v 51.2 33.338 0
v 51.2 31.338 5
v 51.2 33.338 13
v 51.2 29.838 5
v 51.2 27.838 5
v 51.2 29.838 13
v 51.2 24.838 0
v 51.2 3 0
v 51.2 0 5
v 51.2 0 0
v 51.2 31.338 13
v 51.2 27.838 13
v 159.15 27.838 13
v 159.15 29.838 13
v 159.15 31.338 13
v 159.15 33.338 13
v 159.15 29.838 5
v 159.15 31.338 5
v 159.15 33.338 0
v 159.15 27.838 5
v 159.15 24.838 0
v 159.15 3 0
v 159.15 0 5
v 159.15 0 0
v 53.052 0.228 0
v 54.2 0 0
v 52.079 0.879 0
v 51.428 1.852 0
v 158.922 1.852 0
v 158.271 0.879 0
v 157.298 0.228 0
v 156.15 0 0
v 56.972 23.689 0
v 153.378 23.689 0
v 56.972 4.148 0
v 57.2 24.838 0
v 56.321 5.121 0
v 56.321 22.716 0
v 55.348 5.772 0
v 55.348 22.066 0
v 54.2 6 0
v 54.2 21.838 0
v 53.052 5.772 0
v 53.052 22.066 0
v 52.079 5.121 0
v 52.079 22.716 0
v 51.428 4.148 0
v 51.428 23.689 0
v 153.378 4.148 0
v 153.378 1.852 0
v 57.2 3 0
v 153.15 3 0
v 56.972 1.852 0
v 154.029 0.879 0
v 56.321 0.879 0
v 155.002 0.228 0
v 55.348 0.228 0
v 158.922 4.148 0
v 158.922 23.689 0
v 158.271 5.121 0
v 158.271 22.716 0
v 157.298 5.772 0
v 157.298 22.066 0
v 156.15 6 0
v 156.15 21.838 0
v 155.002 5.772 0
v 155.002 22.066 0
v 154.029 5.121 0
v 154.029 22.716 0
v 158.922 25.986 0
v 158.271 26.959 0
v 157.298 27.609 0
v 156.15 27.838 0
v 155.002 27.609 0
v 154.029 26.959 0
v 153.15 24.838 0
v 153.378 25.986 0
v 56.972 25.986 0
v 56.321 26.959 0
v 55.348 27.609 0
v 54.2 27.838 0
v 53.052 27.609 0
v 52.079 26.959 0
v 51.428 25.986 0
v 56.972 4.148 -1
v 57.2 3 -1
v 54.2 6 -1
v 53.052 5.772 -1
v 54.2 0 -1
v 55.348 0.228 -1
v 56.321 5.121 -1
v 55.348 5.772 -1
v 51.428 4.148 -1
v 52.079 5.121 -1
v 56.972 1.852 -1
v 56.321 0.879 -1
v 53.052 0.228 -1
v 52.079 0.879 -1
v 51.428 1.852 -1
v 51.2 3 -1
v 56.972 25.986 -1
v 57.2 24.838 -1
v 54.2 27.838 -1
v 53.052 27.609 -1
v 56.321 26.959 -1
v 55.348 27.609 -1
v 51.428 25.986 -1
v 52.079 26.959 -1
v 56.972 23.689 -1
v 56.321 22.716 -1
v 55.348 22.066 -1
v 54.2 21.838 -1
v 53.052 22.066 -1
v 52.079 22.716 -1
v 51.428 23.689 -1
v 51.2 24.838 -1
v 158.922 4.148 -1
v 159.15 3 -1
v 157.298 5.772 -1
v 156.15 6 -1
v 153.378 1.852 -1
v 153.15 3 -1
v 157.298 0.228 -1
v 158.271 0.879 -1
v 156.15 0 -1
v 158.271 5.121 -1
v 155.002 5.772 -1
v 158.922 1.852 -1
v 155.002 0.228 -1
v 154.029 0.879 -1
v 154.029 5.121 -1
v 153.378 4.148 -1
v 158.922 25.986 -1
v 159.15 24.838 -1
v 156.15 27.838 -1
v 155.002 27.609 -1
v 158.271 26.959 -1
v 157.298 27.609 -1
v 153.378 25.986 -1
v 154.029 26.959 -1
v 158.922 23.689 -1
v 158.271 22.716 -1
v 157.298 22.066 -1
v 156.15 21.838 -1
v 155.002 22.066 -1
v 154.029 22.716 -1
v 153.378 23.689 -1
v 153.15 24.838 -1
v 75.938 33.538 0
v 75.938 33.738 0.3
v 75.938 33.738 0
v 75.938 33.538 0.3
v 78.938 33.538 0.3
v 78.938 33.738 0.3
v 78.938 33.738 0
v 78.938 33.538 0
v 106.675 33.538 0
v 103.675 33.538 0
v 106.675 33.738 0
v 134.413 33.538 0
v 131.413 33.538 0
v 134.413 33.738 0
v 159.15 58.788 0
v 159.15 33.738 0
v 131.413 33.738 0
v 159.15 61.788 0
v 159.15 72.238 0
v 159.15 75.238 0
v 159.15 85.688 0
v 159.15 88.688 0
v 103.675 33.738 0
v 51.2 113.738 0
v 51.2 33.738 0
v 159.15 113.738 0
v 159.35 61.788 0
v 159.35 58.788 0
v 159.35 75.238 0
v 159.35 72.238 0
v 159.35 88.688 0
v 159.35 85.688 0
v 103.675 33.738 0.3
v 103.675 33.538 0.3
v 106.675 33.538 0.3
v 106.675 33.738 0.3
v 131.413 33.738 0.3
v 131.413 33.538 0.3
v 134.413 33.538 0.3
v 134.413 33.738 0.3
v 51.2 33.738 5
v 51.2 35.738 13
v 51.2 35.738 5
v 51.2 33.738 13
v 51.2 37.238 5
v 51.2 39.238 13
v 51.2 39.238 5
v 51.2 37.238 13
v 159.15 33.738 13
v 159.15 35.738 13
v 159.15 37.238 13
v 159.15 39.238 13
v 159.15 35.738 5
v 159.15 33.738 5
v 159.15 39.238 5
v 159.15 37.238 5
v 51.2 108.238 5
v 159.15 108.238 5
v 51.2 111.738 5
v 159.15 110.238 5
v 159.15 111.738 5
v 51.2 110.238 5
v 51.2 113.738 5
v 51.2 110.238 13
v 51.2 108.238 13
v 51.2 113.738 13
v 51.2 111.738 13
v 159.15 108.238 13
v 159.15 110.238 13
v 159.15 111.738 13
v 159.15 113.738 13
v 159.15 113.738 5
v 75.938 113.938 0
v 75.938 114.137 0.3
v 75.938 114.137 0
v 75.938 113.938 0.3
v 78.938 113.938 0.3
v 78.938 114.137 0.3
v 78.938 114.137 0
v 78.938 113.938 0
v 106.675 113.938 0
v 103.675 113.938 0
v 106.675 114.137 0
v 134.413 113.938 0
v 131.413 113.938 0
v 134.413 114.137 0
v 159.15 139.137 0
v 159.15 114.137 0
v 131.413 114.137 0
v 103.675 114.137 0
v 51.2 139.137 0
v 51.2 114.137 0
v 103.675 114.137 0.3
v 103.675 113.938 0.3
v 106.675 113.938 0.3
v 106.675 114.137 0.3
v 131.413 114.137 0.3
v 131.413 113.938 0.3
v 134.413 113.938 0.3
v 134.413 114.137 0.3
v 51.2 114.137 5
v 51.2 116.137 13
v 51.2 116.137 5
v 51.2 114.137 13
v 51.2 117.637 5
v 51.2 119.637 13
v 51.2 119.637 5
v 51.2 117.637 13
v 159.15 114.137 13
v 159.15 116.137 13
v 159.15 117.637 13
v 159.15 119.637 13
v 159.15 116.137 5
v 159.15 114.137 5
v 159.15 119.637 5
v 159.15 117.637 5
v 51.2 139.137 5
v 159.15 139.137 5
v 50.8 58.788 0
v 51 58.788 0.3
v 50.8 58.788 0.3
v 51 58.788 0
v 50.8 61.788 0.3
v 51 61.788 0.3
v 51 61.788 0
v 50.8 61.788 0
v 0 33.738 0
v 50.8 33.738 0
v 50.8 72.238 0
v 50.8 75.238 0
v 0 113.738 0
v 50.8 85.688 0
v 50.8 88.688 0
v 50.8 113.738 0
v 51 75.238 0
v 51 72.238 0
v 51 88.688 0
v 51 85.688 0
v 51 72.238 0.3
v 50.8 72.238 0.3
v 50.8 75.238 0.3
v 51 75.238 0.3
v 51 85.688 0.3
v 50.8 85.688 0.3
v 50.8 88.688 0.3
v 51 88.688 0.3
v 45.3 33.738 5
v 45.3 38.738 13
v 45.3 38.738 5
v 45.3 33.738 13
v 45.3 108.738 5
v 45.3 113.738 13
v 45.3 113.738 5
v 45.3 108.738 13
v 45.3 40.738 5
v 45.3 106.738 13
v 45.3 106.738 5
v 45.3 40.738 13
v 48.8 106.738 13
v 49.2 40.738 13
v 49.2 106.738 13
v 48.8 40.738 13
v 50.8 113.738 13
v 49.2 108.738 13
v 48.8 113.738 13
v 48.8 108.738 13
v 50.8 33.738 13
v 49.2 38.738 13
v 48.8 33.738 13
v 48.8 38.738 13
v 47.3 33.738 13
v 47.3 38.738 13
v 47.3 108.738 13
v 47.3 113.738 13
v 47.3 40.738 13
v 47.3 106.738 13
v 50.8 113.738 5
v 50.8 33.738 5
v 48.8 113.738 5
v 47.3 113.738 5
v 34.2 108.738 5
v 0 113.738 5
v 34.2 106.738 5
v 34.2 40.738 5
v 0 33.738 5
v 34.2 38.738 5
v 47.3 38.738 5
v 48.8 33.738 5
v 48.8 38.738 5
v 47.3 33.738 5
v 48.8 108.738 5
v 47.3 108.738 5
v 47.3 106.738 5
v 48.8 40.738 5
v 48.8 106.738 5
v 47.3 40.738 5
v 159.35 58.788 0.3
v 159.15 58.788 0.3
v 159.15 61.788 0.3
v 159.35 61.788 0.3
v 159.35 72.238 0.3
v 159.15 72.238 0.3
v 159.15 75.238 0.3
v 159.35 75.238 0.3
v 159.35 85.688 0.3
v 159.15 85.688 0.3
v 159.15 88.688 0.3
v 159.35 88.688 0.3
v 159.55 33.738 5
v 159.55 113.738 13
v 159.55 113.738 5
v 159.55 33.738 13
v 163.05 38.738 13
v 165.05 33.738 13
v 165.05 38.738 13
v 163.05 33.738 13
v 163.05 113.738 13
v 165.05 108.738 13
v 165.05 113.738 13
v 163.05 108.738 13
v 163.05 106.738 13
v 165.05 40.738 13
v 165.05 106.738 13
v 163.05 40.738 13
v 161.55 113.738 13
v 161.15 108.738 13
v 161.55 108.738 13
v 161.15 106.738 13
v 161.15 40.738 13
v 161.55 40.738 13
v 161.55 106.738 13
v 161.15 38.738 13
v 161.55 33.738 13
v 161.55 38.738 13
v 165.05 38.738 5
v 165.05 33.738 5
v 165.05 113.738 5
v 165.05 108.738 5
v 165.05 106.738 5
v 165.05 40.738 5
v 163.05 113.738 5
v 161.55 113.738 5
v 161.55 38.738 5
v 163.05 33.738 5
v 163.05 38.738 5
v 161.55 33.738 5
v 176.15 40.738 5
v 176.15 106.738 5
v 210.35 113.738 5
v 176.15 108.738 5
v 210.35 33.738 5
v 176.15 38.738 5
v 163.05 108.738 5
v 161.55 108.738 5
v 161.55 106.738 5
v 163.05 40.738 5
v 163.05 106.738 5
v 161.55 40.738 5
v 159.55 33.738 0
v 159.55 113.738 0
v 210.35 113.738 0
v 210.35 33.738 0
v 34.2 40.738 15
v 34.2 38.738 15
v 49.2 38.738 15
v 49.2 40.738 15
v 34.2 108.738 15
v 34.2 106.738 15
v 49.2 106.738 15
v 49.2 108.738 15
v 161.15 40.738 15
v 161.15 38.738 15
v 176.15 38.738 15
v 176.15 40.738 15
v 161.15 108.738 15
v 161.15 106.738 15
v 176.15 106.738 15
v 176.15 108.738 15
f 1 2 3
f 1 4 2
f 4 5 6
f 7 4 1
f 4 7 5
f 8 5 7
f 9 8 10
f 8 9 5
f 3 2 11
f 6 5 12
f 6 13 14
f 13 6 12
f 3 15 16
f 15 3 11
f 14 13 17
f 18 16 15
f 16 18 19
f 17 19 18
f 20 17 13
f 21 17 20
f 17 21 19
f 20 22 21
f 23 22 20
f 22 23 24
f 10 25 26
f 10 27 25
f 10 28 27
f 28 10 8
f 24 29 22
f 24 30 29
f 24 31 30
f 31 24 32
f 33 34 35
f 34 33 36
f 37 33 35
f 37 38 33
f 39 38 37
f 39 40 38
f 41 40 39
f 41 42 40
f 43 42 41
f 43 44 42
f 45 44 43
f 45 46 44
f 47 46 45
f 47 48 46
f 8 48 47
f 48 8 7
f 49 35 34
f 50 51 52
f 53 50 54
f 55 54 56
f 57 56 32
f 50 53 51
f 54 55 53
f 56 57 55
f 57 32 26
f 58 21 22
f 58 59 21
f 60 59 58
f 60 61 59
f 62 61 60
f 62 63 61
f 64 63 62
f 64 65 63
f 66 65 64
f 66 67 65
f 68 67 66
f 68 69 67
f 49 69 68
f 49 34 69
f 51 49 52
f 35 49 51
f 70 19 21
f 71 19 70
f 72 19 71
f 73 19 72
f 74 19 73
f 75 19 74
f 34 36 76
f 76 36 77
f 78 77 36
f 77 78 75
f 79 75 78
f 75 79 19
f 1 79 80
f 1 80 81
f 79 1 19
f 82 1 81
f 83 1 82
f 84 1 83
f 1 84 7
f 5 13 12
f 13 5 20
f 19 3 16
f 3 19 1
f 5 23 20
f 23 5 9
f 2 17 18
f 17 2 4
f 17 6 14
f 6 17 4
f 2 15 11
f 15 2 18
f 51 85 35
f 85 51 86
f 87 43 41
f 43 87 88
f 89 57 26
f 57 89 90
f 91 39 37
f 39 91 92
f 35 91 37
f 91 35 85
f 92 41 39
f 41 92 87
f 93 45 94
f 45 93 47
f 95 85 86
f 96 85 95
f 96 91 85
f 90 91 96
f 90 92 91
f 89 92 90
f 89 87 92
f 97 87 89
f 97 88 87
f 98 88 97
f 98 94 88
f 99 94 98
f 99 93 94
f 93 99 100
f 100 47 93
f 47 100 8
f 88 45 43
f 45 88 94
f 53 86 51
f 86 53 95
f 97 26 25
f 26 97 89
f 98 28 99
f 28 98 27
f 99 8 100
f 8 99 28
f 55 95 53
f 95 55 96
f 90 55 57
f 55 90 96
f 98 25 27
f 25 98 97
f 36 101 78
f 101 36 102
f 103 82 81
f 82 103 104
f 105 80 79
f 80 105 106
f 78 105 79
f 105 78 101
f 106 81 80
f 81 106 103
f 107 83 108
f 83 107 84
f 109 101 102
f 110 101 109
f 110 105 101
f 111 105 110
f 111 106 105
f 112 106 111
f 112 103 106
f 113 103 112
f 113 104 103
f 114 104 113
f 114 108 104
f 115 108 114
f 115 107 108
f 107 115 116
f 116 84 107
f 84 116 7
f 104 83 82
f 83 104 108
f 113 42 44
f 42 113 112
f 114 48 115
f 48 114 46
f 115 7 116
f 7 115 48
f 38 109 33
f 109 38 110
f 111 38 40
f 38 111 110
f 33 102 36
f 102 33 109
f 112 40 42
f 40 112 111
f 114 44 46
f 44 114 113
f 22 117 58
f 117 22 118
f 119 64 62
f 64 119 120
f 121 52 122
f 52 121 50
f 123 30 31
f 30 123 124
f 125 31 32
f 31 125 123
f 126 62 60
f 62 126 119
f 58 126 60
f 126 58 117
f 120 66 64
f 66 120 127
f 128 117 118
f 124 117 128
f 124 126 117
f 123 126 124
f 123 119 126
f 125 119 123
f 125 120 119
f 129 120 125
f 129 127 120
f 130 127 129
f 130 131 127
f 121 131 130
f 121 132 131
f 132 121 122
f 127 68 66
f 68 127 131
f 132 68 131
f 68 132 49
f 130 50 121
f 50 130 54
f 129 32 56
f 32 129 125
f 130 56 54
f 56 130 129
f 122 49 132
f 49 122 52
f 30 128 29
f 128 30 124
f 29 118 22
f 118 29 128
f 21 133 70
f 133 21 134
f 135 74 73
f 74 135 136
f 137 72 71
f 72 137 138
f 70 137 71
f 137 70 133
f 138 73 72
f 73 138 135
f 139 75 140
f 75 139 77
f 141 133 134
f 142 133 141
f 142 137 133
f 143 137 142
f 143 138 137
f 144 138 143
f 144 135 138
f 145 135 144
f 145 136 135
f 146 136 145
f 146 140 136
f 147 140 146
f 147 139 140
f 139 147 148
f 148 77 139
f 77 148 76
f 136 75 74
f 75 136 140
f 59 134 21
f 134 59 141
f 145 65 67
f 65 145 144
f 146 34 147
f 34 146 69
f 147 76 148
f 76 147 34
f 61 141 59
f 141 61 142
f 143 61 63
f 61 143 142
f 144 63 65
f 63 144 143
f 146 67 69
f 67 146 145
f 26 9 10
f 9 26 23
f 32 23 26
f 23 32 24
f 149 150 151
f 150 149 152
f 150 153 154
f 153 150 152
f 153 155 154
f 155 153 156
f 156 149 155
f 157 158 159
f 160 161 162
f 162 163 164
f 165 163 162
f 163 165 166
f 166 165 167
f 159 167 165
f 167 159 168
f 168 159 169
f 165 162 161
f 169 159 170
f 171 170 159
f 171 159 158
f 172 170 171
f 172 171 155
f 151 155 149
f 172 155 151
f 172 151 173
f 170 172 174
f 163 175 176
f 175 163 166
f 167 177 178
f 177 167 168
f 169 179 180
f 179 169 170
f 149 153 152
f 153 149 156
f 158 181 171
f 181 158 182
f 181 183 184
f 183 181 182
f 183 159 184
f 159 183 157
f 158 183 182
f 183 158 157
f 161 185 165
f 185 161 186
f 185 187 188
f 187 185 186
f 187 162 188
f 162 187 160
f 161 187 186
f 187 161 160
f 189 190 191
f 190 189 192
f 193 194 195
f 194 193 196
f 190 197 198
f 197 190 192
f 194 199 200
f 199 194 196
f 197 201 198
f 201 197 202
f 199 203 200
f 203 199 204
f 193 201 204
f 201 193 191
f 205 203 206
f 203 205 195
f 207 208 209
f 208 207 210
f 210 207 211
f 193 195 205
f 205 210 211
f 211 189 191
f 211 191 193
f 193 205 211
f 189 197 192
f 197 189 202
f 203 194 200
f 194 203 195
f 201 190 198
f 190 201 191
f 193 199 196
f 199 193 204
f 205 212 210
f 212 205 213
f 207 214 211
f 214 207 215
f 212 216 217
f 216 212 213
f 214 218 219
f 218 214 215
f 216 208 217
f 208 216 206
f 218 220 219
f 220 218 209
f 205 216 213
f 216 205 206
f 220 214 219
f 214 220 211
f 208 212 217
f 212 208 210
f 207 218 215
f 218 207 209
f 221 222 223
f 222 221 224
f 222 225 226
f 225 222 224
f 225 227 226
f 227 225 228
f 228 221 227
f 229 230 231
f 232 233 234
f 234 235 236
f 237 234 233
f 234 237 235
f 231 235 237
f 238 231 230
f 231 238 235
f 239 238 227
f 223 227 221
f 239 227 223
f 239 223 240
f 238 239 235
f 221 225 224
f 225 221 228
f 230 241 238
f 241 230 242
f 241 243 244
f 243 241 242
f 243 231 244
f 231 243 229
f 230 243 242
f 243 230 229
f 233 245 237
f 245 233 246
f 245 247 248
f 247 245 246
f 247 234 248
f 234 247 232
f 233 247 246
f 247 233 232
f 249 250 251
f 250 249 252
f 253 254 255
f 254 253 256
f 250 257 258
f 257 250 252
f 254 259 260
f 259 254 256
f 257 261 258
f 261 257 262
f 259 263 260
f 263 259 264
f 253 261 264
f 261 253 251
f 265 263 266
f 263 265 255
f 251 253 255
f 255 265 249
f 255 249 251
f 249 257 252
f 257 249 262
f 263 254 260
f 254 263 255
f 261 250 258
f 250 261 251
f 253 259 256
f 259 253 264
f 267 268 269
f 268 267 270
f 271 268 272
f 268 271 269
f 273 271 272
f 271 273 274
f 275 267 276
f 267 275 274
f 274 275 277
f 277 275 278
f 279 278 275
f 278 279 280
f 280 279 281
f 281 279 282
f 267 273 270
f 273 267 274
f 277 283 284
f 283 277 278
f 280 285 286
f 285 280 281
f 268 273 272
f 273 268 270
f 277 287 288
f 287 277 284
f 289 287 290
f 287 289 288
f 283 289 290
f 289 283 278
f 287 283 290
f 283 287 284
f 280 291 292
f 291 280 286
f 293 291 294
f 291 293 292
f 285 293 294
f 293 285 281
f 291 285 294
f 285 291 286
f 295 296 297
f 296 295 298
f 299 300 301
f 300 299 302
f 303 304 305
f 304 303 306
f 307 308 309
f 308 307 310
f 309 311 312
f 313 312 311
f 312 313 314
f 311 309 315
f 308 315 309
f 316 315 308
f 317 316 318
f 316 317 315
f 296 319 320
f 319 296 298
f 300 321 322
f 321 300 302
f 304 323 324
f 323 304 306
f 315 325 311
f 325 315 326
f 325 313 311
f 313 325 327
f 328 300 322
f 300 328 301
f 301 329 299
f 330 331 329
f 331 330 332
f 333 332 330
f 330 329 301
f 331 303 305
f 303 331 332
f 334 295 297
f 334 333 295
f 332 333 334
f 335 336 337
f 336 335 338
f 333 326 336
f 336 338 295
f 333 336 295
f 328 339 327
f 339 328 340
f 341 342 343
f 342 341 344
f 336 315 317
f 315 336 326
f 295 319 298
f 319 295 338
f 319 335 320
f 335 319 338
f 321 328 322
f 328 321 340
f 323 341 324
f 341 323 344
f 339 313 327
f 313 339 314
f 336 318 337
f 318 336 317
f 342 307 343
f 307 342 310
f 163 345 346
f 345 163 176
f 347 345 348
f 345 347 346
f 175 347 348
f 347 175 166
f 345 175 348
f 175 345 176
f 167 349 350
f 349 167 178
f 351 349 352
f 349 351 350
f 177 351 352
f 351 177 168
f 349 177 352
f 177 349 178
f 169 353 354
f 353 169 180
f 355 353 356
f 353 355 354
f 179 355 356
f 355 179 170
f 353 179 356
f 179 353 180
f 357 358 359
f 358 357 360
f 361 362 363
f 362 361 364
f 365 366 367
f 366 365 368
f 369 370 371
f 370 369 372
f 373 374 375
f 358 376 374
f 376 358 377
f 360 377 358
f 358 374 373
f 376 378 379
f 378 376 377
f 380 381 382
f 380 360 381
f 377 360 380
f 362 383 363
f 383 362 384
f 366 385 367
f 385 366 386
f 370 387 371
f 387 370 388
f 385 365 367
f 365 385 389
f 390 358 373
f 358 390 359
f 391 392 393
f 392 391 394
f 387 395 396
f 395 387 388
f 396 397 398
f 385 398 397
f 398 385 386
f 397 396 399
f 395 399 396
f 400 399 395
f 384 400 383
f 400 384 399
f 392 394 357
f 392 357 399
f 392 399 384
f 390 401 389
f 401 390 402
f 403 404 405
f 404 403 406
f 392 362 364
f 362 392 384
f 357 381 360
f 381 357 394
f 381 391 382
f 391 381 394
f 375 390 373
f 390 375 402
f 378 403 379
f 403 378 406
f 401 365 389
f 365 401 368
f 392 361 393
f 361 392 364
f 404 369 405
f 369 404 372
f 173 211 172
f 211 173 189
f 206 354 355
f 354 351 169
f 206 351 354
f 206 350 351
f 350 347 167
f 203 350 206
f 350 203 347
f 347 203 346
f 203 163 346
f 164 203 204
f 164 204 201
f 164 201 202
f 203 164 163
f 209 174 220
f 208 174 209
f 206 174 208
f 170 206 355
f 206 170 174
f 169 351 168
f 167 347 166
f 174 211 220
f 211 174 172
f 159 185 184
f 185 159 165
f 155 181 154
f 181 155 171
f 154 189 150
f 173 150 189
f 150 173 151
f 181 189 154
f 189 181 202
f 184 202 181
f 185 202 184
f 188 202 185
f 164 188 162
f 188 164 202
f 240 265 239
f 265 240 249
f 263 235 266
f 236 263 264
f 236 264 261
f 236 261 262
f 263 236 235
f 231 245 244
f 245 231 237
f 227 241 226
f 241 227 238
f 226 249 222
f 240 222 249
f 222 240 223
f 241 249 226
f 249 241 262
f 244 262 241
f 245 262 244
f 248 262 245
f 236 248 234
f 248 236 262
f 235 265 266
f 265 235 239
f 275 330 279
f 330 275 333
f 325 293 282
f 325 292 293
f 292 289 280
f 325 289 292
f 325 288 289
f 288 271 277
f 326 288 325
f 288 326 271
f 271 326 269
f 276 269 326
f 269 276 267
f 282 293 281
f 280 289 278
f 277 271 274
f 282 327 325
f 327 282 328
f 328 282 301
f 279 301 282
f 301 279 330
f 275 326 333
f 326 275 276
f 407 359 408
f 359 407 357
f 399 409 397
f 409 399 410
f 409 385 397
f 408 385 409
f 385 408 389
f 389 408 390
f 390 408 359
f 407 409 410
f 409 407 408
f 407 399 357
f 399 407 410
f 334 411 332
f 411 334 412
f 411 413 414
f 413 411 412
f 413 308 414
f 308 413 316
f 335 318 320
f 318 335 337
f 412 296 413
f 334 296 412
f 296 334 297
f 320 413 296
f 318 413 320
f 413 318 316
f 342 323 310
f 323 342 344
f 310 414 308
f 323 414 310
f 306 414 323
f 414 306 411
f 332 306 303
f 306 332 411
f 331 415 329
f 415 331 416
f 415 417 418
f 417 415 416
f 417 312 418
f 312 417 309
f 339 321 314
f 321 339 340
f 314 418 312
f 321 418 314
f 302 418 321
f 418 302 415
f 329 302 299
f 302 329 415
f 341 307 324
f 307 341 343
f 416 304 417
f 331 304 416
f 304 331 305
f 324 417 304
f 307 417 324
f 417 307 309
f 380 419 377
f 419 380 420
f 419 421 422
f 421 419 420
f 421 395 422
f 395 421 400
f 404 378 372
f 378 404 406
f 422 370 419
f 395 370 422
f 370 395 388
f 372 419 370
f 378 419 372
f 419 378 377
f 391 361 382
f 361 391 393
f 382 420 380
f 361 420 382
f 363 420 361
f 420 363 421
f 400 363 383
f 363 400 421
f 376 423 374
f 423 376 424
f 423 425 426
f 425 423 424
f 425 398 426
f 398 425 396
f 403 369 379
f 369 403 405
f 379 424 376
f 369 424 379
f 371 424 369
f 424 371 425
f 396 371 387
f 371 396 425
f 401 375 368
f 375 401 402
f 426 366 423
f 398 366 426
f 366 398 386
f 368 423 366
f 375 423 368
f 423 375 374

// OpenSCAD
// ============================================================
// Birthday Card Display Stand - Foldable with Living Hinges
// ============================================================
// Prints flat as a cross shape, folds into a display cradle.
// Each card panel slides into U-channel grooves.
// Designed for Bambu Lab A1, white PLA, no supports needed.
//
// Card dimensions (from hand-drawn sketch):
//   Center panel:  4.25" x 5.5"
//   Top flap:      4.25" x 2.625"
//   Bottom flap:   4.25" x 2.625"
//   Left flap:     2" x 5.5"
//   Right flap:    2" x 5.5"
// ============================================================

// ---- Toggle: set to true to see the folded/assembled view ----
folded_preview = false;

// ---- Unit conversion ----
inch = 25.4;

// ---- Card dimensions (mm) ----
center_w = 4.25 * inch;   // 107.95mm
center_h = 5.5 * inch;    // 139.7mm
top_h    = 2.625 * inch;  // 66.675mm
bottom_h = 2.625 * inch;  // 66.675mm
left_w   = 2 * inch;      // 50.8mm
right_w  = 2 * inch;      // 50.8mm

// ---- Stand parameters ----
wall       = 2;       // wall thickness (mm)
slot_w     = 1.5;     // slot width for card (mm)
slot_d     = 8;       // slot depth (mm)
rail_thick = 5;       // overall rail/panel thickness (mm)

// Rail heights (how tall each support panel is when folded up)
center_rail_h = 80;          // center support height
wing_rail_h   = center_rail_h; // left/right same height
top_rail_h    = 25;           // top rail strip height

// Base plate
base_thick = 5;               // base plate thickness
base_depth = bottom_h * 0.5;  // base extends ~33mm forward

// ---- Living hinge parameters ----
hinge_gap     = 0.4;    // gap between panels at hinge
hinge_bridges = 3;      // number of thin bridge strips
hinge_bridge_w = 3;     // width of each bridge strip
hinge_bridge_t = 0.3;   // thickness of bridge (thin for flex)

// ---- Angle stop bracket ----
bracket_size = 15;      // triangle leg size
bracket_thick = wall;

// ---- Derived dimensions ----
// Width of groove rail cross-section: wall + slot + wall
groove_rail_w = wall + slot_w + wall;  // 5.5mm

// ---- Wing angle ----
wing_angle = 45;

// ---- Bambu A1 bed check ----
total_flat_w = left_w + groove_rail_w + hinge_gap + center_w + hinge_gap + groove_rail_w + right_w;
total_flat_h = top_rail_h + hinge_gap + center_rail_h + hinge_gap + base_depth;

echo(str("=== Birthday Card Stand ==="));
echo(str("Flat footprint: ", total_flat_w, "mm x ", total_flat_h, "mm"));
echo(str("Bambu A1 bed: 256mm x 256mm"));
echo(str("Fits on bed: ", total_flat_w <= 256 && total_flat_h <= 256 ? "YES" : "NO - resize needed"));
echo(str("Card center: ", center_w, "mm x ", center_h, "mm"));
echo(str("Groove: ", slot_w, "mm wide x ", slot_d, "mm deep"));

// ============================================================
// MODULES
// ============================================================

// U-channel groove rail along X axis
// length: how long the groove runs
// height: how tall the rail panel is
module groove_rail(length, height) {
    difference() {
        // Solid rail block
        cube([length, groove_rail_w, height]);
        
        // Cut the slot channel along the top
        translate([0, wall, height - slot_d])
            cube([length, slot_w, slot_d + 1]);
    }
}

// Base plate - solid, sits flat on table
module base_plate() {
    // Main base slab
    cube([center_w, base_depth, base_thick]);
    
    // Groove along the far edge (top of base) to hold bottom card flap
    translate([0, base_depth - groove_rail_w, 0])
        difference() {
            cube([center_w, groove_rail_w, base_thick + slot_d]);
            // Slot cut
            translate([0, wall, base_thick])
                cube([center_w, slot_w, slot_d + 1]);
        }
    
    // Small feet/pads at corners for grip
    foot_r = 3;
    foot_h = 1;
    for (x = [foot_r, center_w - foot_r])
        for (y = [foot_r, base_depth - groove_rail_w - foot_r])
            translate([x, y, -foot_h])
                cylinder(h = foot_h, r = foot_r, $fn = 16);
}

// Center support panel - frame style with groove on top
module center_support() {
    border = 10;  // frame border width
    
    difference() {
        cube([center_w, rail_thick, center_rail_h]);
        
        // Cut out center to make frame (save material)
        translate([border, -1, border])
            cube([center_w - 2*border, rail_thick + 2, center_rail_h - 2*border - slot_d]);
    }
    
    // Groove along the top edge
    translate([0, (rail_thick - groove_rail_w)/2, center_rail_h - slot_d])
        difference() {
            cube([center_w, groove_rail_w, slot_d]);
            translate([0, wall, 0])
                cube([center_w, slot_w, slot_d + 1]);
        }
    
    // Groove along the bottom edge (connects to base groove)
    translate([0, (rail_thick - groove_rail_w)/2, 0])
        difference() {
            cube([center_w, groove_rail_w, slot_d]);
            translate([0, wall, 0])
                cube([center_w, slot_w, slot_d + 1]);
        }
}

// Wing rail panel - holds side card flap
module wing_rail(width) {
    border = 8;
    
    difference() {
        cube([width, rail_thick, wing_rail_h]);
        
        // Frame cutout if wide enough
        if (width > 3 * border) {
            translate([border, -1, border])
                cube([width - 2*border, rail_thick + 2, wing_rail_h - 2*border - slot_d]);
        }
    }
    
    // Groove along inner edge (top when folded)
    translate([0, (rail_thick - groove_rail_w)/2, wing_rail_h - slot_d])
        difference() {
            cube([width, groove_rail_w, slot_d]);
            translate([0, wall, 0])
                cube([width, slot_w, slot_d + 1]);
        }
}

// Top rail strip - holds top "happy birthday" flap
module top_rail() {
    cube([center_w, rail_thick, top_rail_h]);
    
    // Groove along bottom edge
    translate([0, (rail_thick - groove_rail_w)/2, 0])
        difference() {
            cube([center_w, groove_rail_w, slot_d]);
            translate([0, wall, 0])
                cube([center_w, slot_w, slot_d + 1]);
        }
}

// Living hinge - thin bridges connecting two panels
module living_hinge(length) {
    spacing = (length - hinge_bridges * hinge_bridge_w) / (hinge_bridges + 1);
    
    for (i = [0 : hinge_bridges - 1]) {
        x_pos = spacing + i * (hinge_bridge_w + spacing);
        translate([x_pos, 0, 0])
            cube([hinge_bridge_w, hinge_gap, hinge_bridge_t]);
    }
}

// 45-degree angle stop bracket (triangle)
module angle_stop_bracket() {
    // Right triangle that props wing at 45 degrees
    linear_extrude(height = bracket_thick)
        polygon(points = [
            [0, 0],
            [bracket_size, 0],
            [0, bracket_size]
        ]);
}

// ============================================================
// FLAT LAYOUT (for printing)
// ============================================================
module flat_layout() {
    // --- Base plate (bottom of cross) ---
    translate([left_w + hinge_gap, 0, 0])
        base_plate();
    
    // --- Hinge: base to center ---
    translate([left_w + hinge_gap, base_depth + hinge_gap/2, 0])
        living_hinge(center_w);
    
    // --- Center support (middle of cross) ---
    // Lay flat for printing: the center panel lies on its back
    translate([left_w + hinge_gap, base_depth + hinge_gap, 0])
        cube([center_w, center_rail_h, rail_thick]);
    
    // Center panel grooves (printed as raised features on the flat panel)
    // Bottom groove (near base)
    translate([left_w + hinge_gap, base_depth + hinge_gap, rail_thick])
        difference() {
            cube([center_w, groove_rail_w, slot_d]);
            translate([0, wall, 0])
                cube([center_w, slot_w, slot_d + 1]);
        }
    // Top groove (far from base)
    translate([left_w + hinge_gap, base_depth + hinge_gap + center_rail_h - groove_rail_w, rail_thick])
        difference() {
            cube([center_w, groove_rail_w, slot_d]);
            translate([0, wall, 0])
                cube([center_w, slot_w, slot_d + 1]);
        }
    
    // --- Hinge: center to top rail ---
    translate([left_w + hinge_gap, base_depth + hinge_gap + center_rail_h + hinge_gap/2, 0])
        living_hinge(center_w);
    
    // --- Top rail (top of cross) ---
    translate([left_w + hinge_gap, base_depth + 2*hinge_gap + center_rail_h, 0])
        cube([center_w, top_rail_h, rail_thick]);
    
    // Top rail groove
    translate([left_w + hinge_gap, base_depth + 2*hinge_gap + center_rail_h, rail_thick])
        difference() {
            cube([center_w, groove_rail_w, slot_d]);
            translate([0, wall, 0])
                cube([center_w, slot_w, slot_d + 1]);
        }
    
    // --- Hinge: center to left wing ---
    center_y_mid = base_depth + hinge_gap + center_rail_h / 2;
    
    translate([left_w + hinge_gap/2, center_y_mid - left_w/2, 0])
        rotate([0, 0, 90])
            living_hinge(left_w);
    
    // --- Left wing (left of cross) ---
    translate([0, center_y_mid - wing_rail_h/2, 0])
        cube([left_w, wing_rail_h, rail_thick]);
    
    // Left wing groove
    translate([left_w - groove_rail_w, center_y_mid - wing_rail_h/2, rail_thick])
        difference() {
            cube([groove_rail_w, wing_rail_h, slot_d]);
            translate([wall, 0, 0])
                cube([slot_w, wing_rail_h, slot_d + 1]);
        }
    
    // --- Hinge: center to right wing ---
    translate([left_w + hinge_gap + center_w + hinge_gap/2, center_y_mid - right_w/2, 0])
        rotate([0, 0, 90])
            living_hinge(right_w);
    
    // --- Right wing (right of cross) ---
    translate([left_w + 2*hinge_gap + center_w, center_y_mid - wing_rail_h/2, 0])
        cube([right_w, wing_rail_h, rail_thick]);
    
    // Right wing groove
    translate([left_w + 2*hinge_gap + center_w, center_y_mid - wing_rail_h/2, rail_thick])
        difference() {
            cube([groove_rail_w, wing_rail_h, slot_d]);
            translate([wall, 0, 0])
                cube([slot_w, wing_rail_h, slot_d + 1]);
        }
    
    // --- Angle stop brackets (printed flat, fold up) ---
    // Left bracket pair
    translate([left_w + hinge_gap - bracket_size - 2, base_depth + hinge_gap + 5, 0])
        cube([bracket_size, bracket_thick, bracket_size]);
    translate([left_w + hinge_gap - bracket_size - 2, base_depth + hinge_gap + center_rail_h - bracket_thick - 5, 0])
        cube([bracket_size, bracket_thick, bracket_size]);
    
    // Right bracket pair
    translate([left_w + hinge_gap + center_w + 2, base_depth + hinge_gap + 5, 0])
        cube([bracket_size, bracket_thick, bracket_size]);
    translate([left_w + hinge_gap + center_w + 2, base_depth + hinge_gap + center_rail_h - bracket_thick - 5, 0])
        cube([bracket_size, bracket_thick, bracket_size]);
}

// ============================================================
// FOLDED PREVIEW (assembled view)
// ============================================================
module folded_preview() {
    color([0.95, 0.95, 0.95]) {
        // Base plate - flat on table (XY plane)
        base_plate();
        
        // Center support - vertical, rising from back edge of base
        translate([0, base_depth, 0])
            rotate([90, 0, 0])
                translate([0, 0, -rail_thick])
                    center_support();
        
        // Top rail - vertical, on top of center support
        translate([0, base_depth, center_rail_h])
            rotate([90, 0, 0])
                translate([0, 0, -rail_thick])
                    top_rail();
        
        // Left wing - angled 45° outward from center
        translate([0, base_depth, 0])
            rotate([0, 0, 0])
                rotate([90 - wing_angle, 0, 0])
                    translate([-(left_w + hinge_gap), 0, 0])
                        wing_rail(left_w);
        
        // Right wing - angled 45° outward from center (mirror)
        translate([center_w, base_depth, 0])
            rotate([0, 0, 0])
                rotate([90 - wing_angle, 0, 0])
                    translate([hinge_gap, 0, 0])
                        wing_rail(right_w);
    }
    
    // Semi-transparent card panels for visualization
    card_alpha = 0.3;
    
    // Center card panel
    color([1, 0.9, 0.8], card_alpha)
        translate([0, base_depth + wall, slot_d])
            cube([center_w, 0.5, center_h - slot_d]);
    
    // Bottom card flap (in base groove)
    color([1, 0.9, 0.8], card_alpha)
        translate([0, 0, base_thick])
            cube([center_w, bottom_h * 0.3, 0.5]);
}

// ============================================================
// RENDER
// ============================================================
if (folded_preview) {
    folded_preview();
} else {
    flat_layout();
}

// ============================================================
// PRINTING NOTES
// ============================================================
echo("=== PRINTING INSTRUCTIONS ===");
echo("Printer: Bambu Lab A1");
echo("Material: White PLA");
echo("Layer height: 0.2mm");
echo("Infill: 20% grid");
echo("Supports: NONE (prints flat)");
echo("Bed adhesion: Brim recommended");
echo("After printing: Gently fold along living hinges.");
echo("  1. Fold center support up 90° from base");
echo("  2. Fold left/right wings to 45° outward");
echo("  3. Fold top rail to continue center vertically");
echo("  4. Slide card panels into grooves");
echo("If a hinge breaks, glue at desired angle.");
echo("Test print: Export just a 20mm groove strip first to verify card fit.");
